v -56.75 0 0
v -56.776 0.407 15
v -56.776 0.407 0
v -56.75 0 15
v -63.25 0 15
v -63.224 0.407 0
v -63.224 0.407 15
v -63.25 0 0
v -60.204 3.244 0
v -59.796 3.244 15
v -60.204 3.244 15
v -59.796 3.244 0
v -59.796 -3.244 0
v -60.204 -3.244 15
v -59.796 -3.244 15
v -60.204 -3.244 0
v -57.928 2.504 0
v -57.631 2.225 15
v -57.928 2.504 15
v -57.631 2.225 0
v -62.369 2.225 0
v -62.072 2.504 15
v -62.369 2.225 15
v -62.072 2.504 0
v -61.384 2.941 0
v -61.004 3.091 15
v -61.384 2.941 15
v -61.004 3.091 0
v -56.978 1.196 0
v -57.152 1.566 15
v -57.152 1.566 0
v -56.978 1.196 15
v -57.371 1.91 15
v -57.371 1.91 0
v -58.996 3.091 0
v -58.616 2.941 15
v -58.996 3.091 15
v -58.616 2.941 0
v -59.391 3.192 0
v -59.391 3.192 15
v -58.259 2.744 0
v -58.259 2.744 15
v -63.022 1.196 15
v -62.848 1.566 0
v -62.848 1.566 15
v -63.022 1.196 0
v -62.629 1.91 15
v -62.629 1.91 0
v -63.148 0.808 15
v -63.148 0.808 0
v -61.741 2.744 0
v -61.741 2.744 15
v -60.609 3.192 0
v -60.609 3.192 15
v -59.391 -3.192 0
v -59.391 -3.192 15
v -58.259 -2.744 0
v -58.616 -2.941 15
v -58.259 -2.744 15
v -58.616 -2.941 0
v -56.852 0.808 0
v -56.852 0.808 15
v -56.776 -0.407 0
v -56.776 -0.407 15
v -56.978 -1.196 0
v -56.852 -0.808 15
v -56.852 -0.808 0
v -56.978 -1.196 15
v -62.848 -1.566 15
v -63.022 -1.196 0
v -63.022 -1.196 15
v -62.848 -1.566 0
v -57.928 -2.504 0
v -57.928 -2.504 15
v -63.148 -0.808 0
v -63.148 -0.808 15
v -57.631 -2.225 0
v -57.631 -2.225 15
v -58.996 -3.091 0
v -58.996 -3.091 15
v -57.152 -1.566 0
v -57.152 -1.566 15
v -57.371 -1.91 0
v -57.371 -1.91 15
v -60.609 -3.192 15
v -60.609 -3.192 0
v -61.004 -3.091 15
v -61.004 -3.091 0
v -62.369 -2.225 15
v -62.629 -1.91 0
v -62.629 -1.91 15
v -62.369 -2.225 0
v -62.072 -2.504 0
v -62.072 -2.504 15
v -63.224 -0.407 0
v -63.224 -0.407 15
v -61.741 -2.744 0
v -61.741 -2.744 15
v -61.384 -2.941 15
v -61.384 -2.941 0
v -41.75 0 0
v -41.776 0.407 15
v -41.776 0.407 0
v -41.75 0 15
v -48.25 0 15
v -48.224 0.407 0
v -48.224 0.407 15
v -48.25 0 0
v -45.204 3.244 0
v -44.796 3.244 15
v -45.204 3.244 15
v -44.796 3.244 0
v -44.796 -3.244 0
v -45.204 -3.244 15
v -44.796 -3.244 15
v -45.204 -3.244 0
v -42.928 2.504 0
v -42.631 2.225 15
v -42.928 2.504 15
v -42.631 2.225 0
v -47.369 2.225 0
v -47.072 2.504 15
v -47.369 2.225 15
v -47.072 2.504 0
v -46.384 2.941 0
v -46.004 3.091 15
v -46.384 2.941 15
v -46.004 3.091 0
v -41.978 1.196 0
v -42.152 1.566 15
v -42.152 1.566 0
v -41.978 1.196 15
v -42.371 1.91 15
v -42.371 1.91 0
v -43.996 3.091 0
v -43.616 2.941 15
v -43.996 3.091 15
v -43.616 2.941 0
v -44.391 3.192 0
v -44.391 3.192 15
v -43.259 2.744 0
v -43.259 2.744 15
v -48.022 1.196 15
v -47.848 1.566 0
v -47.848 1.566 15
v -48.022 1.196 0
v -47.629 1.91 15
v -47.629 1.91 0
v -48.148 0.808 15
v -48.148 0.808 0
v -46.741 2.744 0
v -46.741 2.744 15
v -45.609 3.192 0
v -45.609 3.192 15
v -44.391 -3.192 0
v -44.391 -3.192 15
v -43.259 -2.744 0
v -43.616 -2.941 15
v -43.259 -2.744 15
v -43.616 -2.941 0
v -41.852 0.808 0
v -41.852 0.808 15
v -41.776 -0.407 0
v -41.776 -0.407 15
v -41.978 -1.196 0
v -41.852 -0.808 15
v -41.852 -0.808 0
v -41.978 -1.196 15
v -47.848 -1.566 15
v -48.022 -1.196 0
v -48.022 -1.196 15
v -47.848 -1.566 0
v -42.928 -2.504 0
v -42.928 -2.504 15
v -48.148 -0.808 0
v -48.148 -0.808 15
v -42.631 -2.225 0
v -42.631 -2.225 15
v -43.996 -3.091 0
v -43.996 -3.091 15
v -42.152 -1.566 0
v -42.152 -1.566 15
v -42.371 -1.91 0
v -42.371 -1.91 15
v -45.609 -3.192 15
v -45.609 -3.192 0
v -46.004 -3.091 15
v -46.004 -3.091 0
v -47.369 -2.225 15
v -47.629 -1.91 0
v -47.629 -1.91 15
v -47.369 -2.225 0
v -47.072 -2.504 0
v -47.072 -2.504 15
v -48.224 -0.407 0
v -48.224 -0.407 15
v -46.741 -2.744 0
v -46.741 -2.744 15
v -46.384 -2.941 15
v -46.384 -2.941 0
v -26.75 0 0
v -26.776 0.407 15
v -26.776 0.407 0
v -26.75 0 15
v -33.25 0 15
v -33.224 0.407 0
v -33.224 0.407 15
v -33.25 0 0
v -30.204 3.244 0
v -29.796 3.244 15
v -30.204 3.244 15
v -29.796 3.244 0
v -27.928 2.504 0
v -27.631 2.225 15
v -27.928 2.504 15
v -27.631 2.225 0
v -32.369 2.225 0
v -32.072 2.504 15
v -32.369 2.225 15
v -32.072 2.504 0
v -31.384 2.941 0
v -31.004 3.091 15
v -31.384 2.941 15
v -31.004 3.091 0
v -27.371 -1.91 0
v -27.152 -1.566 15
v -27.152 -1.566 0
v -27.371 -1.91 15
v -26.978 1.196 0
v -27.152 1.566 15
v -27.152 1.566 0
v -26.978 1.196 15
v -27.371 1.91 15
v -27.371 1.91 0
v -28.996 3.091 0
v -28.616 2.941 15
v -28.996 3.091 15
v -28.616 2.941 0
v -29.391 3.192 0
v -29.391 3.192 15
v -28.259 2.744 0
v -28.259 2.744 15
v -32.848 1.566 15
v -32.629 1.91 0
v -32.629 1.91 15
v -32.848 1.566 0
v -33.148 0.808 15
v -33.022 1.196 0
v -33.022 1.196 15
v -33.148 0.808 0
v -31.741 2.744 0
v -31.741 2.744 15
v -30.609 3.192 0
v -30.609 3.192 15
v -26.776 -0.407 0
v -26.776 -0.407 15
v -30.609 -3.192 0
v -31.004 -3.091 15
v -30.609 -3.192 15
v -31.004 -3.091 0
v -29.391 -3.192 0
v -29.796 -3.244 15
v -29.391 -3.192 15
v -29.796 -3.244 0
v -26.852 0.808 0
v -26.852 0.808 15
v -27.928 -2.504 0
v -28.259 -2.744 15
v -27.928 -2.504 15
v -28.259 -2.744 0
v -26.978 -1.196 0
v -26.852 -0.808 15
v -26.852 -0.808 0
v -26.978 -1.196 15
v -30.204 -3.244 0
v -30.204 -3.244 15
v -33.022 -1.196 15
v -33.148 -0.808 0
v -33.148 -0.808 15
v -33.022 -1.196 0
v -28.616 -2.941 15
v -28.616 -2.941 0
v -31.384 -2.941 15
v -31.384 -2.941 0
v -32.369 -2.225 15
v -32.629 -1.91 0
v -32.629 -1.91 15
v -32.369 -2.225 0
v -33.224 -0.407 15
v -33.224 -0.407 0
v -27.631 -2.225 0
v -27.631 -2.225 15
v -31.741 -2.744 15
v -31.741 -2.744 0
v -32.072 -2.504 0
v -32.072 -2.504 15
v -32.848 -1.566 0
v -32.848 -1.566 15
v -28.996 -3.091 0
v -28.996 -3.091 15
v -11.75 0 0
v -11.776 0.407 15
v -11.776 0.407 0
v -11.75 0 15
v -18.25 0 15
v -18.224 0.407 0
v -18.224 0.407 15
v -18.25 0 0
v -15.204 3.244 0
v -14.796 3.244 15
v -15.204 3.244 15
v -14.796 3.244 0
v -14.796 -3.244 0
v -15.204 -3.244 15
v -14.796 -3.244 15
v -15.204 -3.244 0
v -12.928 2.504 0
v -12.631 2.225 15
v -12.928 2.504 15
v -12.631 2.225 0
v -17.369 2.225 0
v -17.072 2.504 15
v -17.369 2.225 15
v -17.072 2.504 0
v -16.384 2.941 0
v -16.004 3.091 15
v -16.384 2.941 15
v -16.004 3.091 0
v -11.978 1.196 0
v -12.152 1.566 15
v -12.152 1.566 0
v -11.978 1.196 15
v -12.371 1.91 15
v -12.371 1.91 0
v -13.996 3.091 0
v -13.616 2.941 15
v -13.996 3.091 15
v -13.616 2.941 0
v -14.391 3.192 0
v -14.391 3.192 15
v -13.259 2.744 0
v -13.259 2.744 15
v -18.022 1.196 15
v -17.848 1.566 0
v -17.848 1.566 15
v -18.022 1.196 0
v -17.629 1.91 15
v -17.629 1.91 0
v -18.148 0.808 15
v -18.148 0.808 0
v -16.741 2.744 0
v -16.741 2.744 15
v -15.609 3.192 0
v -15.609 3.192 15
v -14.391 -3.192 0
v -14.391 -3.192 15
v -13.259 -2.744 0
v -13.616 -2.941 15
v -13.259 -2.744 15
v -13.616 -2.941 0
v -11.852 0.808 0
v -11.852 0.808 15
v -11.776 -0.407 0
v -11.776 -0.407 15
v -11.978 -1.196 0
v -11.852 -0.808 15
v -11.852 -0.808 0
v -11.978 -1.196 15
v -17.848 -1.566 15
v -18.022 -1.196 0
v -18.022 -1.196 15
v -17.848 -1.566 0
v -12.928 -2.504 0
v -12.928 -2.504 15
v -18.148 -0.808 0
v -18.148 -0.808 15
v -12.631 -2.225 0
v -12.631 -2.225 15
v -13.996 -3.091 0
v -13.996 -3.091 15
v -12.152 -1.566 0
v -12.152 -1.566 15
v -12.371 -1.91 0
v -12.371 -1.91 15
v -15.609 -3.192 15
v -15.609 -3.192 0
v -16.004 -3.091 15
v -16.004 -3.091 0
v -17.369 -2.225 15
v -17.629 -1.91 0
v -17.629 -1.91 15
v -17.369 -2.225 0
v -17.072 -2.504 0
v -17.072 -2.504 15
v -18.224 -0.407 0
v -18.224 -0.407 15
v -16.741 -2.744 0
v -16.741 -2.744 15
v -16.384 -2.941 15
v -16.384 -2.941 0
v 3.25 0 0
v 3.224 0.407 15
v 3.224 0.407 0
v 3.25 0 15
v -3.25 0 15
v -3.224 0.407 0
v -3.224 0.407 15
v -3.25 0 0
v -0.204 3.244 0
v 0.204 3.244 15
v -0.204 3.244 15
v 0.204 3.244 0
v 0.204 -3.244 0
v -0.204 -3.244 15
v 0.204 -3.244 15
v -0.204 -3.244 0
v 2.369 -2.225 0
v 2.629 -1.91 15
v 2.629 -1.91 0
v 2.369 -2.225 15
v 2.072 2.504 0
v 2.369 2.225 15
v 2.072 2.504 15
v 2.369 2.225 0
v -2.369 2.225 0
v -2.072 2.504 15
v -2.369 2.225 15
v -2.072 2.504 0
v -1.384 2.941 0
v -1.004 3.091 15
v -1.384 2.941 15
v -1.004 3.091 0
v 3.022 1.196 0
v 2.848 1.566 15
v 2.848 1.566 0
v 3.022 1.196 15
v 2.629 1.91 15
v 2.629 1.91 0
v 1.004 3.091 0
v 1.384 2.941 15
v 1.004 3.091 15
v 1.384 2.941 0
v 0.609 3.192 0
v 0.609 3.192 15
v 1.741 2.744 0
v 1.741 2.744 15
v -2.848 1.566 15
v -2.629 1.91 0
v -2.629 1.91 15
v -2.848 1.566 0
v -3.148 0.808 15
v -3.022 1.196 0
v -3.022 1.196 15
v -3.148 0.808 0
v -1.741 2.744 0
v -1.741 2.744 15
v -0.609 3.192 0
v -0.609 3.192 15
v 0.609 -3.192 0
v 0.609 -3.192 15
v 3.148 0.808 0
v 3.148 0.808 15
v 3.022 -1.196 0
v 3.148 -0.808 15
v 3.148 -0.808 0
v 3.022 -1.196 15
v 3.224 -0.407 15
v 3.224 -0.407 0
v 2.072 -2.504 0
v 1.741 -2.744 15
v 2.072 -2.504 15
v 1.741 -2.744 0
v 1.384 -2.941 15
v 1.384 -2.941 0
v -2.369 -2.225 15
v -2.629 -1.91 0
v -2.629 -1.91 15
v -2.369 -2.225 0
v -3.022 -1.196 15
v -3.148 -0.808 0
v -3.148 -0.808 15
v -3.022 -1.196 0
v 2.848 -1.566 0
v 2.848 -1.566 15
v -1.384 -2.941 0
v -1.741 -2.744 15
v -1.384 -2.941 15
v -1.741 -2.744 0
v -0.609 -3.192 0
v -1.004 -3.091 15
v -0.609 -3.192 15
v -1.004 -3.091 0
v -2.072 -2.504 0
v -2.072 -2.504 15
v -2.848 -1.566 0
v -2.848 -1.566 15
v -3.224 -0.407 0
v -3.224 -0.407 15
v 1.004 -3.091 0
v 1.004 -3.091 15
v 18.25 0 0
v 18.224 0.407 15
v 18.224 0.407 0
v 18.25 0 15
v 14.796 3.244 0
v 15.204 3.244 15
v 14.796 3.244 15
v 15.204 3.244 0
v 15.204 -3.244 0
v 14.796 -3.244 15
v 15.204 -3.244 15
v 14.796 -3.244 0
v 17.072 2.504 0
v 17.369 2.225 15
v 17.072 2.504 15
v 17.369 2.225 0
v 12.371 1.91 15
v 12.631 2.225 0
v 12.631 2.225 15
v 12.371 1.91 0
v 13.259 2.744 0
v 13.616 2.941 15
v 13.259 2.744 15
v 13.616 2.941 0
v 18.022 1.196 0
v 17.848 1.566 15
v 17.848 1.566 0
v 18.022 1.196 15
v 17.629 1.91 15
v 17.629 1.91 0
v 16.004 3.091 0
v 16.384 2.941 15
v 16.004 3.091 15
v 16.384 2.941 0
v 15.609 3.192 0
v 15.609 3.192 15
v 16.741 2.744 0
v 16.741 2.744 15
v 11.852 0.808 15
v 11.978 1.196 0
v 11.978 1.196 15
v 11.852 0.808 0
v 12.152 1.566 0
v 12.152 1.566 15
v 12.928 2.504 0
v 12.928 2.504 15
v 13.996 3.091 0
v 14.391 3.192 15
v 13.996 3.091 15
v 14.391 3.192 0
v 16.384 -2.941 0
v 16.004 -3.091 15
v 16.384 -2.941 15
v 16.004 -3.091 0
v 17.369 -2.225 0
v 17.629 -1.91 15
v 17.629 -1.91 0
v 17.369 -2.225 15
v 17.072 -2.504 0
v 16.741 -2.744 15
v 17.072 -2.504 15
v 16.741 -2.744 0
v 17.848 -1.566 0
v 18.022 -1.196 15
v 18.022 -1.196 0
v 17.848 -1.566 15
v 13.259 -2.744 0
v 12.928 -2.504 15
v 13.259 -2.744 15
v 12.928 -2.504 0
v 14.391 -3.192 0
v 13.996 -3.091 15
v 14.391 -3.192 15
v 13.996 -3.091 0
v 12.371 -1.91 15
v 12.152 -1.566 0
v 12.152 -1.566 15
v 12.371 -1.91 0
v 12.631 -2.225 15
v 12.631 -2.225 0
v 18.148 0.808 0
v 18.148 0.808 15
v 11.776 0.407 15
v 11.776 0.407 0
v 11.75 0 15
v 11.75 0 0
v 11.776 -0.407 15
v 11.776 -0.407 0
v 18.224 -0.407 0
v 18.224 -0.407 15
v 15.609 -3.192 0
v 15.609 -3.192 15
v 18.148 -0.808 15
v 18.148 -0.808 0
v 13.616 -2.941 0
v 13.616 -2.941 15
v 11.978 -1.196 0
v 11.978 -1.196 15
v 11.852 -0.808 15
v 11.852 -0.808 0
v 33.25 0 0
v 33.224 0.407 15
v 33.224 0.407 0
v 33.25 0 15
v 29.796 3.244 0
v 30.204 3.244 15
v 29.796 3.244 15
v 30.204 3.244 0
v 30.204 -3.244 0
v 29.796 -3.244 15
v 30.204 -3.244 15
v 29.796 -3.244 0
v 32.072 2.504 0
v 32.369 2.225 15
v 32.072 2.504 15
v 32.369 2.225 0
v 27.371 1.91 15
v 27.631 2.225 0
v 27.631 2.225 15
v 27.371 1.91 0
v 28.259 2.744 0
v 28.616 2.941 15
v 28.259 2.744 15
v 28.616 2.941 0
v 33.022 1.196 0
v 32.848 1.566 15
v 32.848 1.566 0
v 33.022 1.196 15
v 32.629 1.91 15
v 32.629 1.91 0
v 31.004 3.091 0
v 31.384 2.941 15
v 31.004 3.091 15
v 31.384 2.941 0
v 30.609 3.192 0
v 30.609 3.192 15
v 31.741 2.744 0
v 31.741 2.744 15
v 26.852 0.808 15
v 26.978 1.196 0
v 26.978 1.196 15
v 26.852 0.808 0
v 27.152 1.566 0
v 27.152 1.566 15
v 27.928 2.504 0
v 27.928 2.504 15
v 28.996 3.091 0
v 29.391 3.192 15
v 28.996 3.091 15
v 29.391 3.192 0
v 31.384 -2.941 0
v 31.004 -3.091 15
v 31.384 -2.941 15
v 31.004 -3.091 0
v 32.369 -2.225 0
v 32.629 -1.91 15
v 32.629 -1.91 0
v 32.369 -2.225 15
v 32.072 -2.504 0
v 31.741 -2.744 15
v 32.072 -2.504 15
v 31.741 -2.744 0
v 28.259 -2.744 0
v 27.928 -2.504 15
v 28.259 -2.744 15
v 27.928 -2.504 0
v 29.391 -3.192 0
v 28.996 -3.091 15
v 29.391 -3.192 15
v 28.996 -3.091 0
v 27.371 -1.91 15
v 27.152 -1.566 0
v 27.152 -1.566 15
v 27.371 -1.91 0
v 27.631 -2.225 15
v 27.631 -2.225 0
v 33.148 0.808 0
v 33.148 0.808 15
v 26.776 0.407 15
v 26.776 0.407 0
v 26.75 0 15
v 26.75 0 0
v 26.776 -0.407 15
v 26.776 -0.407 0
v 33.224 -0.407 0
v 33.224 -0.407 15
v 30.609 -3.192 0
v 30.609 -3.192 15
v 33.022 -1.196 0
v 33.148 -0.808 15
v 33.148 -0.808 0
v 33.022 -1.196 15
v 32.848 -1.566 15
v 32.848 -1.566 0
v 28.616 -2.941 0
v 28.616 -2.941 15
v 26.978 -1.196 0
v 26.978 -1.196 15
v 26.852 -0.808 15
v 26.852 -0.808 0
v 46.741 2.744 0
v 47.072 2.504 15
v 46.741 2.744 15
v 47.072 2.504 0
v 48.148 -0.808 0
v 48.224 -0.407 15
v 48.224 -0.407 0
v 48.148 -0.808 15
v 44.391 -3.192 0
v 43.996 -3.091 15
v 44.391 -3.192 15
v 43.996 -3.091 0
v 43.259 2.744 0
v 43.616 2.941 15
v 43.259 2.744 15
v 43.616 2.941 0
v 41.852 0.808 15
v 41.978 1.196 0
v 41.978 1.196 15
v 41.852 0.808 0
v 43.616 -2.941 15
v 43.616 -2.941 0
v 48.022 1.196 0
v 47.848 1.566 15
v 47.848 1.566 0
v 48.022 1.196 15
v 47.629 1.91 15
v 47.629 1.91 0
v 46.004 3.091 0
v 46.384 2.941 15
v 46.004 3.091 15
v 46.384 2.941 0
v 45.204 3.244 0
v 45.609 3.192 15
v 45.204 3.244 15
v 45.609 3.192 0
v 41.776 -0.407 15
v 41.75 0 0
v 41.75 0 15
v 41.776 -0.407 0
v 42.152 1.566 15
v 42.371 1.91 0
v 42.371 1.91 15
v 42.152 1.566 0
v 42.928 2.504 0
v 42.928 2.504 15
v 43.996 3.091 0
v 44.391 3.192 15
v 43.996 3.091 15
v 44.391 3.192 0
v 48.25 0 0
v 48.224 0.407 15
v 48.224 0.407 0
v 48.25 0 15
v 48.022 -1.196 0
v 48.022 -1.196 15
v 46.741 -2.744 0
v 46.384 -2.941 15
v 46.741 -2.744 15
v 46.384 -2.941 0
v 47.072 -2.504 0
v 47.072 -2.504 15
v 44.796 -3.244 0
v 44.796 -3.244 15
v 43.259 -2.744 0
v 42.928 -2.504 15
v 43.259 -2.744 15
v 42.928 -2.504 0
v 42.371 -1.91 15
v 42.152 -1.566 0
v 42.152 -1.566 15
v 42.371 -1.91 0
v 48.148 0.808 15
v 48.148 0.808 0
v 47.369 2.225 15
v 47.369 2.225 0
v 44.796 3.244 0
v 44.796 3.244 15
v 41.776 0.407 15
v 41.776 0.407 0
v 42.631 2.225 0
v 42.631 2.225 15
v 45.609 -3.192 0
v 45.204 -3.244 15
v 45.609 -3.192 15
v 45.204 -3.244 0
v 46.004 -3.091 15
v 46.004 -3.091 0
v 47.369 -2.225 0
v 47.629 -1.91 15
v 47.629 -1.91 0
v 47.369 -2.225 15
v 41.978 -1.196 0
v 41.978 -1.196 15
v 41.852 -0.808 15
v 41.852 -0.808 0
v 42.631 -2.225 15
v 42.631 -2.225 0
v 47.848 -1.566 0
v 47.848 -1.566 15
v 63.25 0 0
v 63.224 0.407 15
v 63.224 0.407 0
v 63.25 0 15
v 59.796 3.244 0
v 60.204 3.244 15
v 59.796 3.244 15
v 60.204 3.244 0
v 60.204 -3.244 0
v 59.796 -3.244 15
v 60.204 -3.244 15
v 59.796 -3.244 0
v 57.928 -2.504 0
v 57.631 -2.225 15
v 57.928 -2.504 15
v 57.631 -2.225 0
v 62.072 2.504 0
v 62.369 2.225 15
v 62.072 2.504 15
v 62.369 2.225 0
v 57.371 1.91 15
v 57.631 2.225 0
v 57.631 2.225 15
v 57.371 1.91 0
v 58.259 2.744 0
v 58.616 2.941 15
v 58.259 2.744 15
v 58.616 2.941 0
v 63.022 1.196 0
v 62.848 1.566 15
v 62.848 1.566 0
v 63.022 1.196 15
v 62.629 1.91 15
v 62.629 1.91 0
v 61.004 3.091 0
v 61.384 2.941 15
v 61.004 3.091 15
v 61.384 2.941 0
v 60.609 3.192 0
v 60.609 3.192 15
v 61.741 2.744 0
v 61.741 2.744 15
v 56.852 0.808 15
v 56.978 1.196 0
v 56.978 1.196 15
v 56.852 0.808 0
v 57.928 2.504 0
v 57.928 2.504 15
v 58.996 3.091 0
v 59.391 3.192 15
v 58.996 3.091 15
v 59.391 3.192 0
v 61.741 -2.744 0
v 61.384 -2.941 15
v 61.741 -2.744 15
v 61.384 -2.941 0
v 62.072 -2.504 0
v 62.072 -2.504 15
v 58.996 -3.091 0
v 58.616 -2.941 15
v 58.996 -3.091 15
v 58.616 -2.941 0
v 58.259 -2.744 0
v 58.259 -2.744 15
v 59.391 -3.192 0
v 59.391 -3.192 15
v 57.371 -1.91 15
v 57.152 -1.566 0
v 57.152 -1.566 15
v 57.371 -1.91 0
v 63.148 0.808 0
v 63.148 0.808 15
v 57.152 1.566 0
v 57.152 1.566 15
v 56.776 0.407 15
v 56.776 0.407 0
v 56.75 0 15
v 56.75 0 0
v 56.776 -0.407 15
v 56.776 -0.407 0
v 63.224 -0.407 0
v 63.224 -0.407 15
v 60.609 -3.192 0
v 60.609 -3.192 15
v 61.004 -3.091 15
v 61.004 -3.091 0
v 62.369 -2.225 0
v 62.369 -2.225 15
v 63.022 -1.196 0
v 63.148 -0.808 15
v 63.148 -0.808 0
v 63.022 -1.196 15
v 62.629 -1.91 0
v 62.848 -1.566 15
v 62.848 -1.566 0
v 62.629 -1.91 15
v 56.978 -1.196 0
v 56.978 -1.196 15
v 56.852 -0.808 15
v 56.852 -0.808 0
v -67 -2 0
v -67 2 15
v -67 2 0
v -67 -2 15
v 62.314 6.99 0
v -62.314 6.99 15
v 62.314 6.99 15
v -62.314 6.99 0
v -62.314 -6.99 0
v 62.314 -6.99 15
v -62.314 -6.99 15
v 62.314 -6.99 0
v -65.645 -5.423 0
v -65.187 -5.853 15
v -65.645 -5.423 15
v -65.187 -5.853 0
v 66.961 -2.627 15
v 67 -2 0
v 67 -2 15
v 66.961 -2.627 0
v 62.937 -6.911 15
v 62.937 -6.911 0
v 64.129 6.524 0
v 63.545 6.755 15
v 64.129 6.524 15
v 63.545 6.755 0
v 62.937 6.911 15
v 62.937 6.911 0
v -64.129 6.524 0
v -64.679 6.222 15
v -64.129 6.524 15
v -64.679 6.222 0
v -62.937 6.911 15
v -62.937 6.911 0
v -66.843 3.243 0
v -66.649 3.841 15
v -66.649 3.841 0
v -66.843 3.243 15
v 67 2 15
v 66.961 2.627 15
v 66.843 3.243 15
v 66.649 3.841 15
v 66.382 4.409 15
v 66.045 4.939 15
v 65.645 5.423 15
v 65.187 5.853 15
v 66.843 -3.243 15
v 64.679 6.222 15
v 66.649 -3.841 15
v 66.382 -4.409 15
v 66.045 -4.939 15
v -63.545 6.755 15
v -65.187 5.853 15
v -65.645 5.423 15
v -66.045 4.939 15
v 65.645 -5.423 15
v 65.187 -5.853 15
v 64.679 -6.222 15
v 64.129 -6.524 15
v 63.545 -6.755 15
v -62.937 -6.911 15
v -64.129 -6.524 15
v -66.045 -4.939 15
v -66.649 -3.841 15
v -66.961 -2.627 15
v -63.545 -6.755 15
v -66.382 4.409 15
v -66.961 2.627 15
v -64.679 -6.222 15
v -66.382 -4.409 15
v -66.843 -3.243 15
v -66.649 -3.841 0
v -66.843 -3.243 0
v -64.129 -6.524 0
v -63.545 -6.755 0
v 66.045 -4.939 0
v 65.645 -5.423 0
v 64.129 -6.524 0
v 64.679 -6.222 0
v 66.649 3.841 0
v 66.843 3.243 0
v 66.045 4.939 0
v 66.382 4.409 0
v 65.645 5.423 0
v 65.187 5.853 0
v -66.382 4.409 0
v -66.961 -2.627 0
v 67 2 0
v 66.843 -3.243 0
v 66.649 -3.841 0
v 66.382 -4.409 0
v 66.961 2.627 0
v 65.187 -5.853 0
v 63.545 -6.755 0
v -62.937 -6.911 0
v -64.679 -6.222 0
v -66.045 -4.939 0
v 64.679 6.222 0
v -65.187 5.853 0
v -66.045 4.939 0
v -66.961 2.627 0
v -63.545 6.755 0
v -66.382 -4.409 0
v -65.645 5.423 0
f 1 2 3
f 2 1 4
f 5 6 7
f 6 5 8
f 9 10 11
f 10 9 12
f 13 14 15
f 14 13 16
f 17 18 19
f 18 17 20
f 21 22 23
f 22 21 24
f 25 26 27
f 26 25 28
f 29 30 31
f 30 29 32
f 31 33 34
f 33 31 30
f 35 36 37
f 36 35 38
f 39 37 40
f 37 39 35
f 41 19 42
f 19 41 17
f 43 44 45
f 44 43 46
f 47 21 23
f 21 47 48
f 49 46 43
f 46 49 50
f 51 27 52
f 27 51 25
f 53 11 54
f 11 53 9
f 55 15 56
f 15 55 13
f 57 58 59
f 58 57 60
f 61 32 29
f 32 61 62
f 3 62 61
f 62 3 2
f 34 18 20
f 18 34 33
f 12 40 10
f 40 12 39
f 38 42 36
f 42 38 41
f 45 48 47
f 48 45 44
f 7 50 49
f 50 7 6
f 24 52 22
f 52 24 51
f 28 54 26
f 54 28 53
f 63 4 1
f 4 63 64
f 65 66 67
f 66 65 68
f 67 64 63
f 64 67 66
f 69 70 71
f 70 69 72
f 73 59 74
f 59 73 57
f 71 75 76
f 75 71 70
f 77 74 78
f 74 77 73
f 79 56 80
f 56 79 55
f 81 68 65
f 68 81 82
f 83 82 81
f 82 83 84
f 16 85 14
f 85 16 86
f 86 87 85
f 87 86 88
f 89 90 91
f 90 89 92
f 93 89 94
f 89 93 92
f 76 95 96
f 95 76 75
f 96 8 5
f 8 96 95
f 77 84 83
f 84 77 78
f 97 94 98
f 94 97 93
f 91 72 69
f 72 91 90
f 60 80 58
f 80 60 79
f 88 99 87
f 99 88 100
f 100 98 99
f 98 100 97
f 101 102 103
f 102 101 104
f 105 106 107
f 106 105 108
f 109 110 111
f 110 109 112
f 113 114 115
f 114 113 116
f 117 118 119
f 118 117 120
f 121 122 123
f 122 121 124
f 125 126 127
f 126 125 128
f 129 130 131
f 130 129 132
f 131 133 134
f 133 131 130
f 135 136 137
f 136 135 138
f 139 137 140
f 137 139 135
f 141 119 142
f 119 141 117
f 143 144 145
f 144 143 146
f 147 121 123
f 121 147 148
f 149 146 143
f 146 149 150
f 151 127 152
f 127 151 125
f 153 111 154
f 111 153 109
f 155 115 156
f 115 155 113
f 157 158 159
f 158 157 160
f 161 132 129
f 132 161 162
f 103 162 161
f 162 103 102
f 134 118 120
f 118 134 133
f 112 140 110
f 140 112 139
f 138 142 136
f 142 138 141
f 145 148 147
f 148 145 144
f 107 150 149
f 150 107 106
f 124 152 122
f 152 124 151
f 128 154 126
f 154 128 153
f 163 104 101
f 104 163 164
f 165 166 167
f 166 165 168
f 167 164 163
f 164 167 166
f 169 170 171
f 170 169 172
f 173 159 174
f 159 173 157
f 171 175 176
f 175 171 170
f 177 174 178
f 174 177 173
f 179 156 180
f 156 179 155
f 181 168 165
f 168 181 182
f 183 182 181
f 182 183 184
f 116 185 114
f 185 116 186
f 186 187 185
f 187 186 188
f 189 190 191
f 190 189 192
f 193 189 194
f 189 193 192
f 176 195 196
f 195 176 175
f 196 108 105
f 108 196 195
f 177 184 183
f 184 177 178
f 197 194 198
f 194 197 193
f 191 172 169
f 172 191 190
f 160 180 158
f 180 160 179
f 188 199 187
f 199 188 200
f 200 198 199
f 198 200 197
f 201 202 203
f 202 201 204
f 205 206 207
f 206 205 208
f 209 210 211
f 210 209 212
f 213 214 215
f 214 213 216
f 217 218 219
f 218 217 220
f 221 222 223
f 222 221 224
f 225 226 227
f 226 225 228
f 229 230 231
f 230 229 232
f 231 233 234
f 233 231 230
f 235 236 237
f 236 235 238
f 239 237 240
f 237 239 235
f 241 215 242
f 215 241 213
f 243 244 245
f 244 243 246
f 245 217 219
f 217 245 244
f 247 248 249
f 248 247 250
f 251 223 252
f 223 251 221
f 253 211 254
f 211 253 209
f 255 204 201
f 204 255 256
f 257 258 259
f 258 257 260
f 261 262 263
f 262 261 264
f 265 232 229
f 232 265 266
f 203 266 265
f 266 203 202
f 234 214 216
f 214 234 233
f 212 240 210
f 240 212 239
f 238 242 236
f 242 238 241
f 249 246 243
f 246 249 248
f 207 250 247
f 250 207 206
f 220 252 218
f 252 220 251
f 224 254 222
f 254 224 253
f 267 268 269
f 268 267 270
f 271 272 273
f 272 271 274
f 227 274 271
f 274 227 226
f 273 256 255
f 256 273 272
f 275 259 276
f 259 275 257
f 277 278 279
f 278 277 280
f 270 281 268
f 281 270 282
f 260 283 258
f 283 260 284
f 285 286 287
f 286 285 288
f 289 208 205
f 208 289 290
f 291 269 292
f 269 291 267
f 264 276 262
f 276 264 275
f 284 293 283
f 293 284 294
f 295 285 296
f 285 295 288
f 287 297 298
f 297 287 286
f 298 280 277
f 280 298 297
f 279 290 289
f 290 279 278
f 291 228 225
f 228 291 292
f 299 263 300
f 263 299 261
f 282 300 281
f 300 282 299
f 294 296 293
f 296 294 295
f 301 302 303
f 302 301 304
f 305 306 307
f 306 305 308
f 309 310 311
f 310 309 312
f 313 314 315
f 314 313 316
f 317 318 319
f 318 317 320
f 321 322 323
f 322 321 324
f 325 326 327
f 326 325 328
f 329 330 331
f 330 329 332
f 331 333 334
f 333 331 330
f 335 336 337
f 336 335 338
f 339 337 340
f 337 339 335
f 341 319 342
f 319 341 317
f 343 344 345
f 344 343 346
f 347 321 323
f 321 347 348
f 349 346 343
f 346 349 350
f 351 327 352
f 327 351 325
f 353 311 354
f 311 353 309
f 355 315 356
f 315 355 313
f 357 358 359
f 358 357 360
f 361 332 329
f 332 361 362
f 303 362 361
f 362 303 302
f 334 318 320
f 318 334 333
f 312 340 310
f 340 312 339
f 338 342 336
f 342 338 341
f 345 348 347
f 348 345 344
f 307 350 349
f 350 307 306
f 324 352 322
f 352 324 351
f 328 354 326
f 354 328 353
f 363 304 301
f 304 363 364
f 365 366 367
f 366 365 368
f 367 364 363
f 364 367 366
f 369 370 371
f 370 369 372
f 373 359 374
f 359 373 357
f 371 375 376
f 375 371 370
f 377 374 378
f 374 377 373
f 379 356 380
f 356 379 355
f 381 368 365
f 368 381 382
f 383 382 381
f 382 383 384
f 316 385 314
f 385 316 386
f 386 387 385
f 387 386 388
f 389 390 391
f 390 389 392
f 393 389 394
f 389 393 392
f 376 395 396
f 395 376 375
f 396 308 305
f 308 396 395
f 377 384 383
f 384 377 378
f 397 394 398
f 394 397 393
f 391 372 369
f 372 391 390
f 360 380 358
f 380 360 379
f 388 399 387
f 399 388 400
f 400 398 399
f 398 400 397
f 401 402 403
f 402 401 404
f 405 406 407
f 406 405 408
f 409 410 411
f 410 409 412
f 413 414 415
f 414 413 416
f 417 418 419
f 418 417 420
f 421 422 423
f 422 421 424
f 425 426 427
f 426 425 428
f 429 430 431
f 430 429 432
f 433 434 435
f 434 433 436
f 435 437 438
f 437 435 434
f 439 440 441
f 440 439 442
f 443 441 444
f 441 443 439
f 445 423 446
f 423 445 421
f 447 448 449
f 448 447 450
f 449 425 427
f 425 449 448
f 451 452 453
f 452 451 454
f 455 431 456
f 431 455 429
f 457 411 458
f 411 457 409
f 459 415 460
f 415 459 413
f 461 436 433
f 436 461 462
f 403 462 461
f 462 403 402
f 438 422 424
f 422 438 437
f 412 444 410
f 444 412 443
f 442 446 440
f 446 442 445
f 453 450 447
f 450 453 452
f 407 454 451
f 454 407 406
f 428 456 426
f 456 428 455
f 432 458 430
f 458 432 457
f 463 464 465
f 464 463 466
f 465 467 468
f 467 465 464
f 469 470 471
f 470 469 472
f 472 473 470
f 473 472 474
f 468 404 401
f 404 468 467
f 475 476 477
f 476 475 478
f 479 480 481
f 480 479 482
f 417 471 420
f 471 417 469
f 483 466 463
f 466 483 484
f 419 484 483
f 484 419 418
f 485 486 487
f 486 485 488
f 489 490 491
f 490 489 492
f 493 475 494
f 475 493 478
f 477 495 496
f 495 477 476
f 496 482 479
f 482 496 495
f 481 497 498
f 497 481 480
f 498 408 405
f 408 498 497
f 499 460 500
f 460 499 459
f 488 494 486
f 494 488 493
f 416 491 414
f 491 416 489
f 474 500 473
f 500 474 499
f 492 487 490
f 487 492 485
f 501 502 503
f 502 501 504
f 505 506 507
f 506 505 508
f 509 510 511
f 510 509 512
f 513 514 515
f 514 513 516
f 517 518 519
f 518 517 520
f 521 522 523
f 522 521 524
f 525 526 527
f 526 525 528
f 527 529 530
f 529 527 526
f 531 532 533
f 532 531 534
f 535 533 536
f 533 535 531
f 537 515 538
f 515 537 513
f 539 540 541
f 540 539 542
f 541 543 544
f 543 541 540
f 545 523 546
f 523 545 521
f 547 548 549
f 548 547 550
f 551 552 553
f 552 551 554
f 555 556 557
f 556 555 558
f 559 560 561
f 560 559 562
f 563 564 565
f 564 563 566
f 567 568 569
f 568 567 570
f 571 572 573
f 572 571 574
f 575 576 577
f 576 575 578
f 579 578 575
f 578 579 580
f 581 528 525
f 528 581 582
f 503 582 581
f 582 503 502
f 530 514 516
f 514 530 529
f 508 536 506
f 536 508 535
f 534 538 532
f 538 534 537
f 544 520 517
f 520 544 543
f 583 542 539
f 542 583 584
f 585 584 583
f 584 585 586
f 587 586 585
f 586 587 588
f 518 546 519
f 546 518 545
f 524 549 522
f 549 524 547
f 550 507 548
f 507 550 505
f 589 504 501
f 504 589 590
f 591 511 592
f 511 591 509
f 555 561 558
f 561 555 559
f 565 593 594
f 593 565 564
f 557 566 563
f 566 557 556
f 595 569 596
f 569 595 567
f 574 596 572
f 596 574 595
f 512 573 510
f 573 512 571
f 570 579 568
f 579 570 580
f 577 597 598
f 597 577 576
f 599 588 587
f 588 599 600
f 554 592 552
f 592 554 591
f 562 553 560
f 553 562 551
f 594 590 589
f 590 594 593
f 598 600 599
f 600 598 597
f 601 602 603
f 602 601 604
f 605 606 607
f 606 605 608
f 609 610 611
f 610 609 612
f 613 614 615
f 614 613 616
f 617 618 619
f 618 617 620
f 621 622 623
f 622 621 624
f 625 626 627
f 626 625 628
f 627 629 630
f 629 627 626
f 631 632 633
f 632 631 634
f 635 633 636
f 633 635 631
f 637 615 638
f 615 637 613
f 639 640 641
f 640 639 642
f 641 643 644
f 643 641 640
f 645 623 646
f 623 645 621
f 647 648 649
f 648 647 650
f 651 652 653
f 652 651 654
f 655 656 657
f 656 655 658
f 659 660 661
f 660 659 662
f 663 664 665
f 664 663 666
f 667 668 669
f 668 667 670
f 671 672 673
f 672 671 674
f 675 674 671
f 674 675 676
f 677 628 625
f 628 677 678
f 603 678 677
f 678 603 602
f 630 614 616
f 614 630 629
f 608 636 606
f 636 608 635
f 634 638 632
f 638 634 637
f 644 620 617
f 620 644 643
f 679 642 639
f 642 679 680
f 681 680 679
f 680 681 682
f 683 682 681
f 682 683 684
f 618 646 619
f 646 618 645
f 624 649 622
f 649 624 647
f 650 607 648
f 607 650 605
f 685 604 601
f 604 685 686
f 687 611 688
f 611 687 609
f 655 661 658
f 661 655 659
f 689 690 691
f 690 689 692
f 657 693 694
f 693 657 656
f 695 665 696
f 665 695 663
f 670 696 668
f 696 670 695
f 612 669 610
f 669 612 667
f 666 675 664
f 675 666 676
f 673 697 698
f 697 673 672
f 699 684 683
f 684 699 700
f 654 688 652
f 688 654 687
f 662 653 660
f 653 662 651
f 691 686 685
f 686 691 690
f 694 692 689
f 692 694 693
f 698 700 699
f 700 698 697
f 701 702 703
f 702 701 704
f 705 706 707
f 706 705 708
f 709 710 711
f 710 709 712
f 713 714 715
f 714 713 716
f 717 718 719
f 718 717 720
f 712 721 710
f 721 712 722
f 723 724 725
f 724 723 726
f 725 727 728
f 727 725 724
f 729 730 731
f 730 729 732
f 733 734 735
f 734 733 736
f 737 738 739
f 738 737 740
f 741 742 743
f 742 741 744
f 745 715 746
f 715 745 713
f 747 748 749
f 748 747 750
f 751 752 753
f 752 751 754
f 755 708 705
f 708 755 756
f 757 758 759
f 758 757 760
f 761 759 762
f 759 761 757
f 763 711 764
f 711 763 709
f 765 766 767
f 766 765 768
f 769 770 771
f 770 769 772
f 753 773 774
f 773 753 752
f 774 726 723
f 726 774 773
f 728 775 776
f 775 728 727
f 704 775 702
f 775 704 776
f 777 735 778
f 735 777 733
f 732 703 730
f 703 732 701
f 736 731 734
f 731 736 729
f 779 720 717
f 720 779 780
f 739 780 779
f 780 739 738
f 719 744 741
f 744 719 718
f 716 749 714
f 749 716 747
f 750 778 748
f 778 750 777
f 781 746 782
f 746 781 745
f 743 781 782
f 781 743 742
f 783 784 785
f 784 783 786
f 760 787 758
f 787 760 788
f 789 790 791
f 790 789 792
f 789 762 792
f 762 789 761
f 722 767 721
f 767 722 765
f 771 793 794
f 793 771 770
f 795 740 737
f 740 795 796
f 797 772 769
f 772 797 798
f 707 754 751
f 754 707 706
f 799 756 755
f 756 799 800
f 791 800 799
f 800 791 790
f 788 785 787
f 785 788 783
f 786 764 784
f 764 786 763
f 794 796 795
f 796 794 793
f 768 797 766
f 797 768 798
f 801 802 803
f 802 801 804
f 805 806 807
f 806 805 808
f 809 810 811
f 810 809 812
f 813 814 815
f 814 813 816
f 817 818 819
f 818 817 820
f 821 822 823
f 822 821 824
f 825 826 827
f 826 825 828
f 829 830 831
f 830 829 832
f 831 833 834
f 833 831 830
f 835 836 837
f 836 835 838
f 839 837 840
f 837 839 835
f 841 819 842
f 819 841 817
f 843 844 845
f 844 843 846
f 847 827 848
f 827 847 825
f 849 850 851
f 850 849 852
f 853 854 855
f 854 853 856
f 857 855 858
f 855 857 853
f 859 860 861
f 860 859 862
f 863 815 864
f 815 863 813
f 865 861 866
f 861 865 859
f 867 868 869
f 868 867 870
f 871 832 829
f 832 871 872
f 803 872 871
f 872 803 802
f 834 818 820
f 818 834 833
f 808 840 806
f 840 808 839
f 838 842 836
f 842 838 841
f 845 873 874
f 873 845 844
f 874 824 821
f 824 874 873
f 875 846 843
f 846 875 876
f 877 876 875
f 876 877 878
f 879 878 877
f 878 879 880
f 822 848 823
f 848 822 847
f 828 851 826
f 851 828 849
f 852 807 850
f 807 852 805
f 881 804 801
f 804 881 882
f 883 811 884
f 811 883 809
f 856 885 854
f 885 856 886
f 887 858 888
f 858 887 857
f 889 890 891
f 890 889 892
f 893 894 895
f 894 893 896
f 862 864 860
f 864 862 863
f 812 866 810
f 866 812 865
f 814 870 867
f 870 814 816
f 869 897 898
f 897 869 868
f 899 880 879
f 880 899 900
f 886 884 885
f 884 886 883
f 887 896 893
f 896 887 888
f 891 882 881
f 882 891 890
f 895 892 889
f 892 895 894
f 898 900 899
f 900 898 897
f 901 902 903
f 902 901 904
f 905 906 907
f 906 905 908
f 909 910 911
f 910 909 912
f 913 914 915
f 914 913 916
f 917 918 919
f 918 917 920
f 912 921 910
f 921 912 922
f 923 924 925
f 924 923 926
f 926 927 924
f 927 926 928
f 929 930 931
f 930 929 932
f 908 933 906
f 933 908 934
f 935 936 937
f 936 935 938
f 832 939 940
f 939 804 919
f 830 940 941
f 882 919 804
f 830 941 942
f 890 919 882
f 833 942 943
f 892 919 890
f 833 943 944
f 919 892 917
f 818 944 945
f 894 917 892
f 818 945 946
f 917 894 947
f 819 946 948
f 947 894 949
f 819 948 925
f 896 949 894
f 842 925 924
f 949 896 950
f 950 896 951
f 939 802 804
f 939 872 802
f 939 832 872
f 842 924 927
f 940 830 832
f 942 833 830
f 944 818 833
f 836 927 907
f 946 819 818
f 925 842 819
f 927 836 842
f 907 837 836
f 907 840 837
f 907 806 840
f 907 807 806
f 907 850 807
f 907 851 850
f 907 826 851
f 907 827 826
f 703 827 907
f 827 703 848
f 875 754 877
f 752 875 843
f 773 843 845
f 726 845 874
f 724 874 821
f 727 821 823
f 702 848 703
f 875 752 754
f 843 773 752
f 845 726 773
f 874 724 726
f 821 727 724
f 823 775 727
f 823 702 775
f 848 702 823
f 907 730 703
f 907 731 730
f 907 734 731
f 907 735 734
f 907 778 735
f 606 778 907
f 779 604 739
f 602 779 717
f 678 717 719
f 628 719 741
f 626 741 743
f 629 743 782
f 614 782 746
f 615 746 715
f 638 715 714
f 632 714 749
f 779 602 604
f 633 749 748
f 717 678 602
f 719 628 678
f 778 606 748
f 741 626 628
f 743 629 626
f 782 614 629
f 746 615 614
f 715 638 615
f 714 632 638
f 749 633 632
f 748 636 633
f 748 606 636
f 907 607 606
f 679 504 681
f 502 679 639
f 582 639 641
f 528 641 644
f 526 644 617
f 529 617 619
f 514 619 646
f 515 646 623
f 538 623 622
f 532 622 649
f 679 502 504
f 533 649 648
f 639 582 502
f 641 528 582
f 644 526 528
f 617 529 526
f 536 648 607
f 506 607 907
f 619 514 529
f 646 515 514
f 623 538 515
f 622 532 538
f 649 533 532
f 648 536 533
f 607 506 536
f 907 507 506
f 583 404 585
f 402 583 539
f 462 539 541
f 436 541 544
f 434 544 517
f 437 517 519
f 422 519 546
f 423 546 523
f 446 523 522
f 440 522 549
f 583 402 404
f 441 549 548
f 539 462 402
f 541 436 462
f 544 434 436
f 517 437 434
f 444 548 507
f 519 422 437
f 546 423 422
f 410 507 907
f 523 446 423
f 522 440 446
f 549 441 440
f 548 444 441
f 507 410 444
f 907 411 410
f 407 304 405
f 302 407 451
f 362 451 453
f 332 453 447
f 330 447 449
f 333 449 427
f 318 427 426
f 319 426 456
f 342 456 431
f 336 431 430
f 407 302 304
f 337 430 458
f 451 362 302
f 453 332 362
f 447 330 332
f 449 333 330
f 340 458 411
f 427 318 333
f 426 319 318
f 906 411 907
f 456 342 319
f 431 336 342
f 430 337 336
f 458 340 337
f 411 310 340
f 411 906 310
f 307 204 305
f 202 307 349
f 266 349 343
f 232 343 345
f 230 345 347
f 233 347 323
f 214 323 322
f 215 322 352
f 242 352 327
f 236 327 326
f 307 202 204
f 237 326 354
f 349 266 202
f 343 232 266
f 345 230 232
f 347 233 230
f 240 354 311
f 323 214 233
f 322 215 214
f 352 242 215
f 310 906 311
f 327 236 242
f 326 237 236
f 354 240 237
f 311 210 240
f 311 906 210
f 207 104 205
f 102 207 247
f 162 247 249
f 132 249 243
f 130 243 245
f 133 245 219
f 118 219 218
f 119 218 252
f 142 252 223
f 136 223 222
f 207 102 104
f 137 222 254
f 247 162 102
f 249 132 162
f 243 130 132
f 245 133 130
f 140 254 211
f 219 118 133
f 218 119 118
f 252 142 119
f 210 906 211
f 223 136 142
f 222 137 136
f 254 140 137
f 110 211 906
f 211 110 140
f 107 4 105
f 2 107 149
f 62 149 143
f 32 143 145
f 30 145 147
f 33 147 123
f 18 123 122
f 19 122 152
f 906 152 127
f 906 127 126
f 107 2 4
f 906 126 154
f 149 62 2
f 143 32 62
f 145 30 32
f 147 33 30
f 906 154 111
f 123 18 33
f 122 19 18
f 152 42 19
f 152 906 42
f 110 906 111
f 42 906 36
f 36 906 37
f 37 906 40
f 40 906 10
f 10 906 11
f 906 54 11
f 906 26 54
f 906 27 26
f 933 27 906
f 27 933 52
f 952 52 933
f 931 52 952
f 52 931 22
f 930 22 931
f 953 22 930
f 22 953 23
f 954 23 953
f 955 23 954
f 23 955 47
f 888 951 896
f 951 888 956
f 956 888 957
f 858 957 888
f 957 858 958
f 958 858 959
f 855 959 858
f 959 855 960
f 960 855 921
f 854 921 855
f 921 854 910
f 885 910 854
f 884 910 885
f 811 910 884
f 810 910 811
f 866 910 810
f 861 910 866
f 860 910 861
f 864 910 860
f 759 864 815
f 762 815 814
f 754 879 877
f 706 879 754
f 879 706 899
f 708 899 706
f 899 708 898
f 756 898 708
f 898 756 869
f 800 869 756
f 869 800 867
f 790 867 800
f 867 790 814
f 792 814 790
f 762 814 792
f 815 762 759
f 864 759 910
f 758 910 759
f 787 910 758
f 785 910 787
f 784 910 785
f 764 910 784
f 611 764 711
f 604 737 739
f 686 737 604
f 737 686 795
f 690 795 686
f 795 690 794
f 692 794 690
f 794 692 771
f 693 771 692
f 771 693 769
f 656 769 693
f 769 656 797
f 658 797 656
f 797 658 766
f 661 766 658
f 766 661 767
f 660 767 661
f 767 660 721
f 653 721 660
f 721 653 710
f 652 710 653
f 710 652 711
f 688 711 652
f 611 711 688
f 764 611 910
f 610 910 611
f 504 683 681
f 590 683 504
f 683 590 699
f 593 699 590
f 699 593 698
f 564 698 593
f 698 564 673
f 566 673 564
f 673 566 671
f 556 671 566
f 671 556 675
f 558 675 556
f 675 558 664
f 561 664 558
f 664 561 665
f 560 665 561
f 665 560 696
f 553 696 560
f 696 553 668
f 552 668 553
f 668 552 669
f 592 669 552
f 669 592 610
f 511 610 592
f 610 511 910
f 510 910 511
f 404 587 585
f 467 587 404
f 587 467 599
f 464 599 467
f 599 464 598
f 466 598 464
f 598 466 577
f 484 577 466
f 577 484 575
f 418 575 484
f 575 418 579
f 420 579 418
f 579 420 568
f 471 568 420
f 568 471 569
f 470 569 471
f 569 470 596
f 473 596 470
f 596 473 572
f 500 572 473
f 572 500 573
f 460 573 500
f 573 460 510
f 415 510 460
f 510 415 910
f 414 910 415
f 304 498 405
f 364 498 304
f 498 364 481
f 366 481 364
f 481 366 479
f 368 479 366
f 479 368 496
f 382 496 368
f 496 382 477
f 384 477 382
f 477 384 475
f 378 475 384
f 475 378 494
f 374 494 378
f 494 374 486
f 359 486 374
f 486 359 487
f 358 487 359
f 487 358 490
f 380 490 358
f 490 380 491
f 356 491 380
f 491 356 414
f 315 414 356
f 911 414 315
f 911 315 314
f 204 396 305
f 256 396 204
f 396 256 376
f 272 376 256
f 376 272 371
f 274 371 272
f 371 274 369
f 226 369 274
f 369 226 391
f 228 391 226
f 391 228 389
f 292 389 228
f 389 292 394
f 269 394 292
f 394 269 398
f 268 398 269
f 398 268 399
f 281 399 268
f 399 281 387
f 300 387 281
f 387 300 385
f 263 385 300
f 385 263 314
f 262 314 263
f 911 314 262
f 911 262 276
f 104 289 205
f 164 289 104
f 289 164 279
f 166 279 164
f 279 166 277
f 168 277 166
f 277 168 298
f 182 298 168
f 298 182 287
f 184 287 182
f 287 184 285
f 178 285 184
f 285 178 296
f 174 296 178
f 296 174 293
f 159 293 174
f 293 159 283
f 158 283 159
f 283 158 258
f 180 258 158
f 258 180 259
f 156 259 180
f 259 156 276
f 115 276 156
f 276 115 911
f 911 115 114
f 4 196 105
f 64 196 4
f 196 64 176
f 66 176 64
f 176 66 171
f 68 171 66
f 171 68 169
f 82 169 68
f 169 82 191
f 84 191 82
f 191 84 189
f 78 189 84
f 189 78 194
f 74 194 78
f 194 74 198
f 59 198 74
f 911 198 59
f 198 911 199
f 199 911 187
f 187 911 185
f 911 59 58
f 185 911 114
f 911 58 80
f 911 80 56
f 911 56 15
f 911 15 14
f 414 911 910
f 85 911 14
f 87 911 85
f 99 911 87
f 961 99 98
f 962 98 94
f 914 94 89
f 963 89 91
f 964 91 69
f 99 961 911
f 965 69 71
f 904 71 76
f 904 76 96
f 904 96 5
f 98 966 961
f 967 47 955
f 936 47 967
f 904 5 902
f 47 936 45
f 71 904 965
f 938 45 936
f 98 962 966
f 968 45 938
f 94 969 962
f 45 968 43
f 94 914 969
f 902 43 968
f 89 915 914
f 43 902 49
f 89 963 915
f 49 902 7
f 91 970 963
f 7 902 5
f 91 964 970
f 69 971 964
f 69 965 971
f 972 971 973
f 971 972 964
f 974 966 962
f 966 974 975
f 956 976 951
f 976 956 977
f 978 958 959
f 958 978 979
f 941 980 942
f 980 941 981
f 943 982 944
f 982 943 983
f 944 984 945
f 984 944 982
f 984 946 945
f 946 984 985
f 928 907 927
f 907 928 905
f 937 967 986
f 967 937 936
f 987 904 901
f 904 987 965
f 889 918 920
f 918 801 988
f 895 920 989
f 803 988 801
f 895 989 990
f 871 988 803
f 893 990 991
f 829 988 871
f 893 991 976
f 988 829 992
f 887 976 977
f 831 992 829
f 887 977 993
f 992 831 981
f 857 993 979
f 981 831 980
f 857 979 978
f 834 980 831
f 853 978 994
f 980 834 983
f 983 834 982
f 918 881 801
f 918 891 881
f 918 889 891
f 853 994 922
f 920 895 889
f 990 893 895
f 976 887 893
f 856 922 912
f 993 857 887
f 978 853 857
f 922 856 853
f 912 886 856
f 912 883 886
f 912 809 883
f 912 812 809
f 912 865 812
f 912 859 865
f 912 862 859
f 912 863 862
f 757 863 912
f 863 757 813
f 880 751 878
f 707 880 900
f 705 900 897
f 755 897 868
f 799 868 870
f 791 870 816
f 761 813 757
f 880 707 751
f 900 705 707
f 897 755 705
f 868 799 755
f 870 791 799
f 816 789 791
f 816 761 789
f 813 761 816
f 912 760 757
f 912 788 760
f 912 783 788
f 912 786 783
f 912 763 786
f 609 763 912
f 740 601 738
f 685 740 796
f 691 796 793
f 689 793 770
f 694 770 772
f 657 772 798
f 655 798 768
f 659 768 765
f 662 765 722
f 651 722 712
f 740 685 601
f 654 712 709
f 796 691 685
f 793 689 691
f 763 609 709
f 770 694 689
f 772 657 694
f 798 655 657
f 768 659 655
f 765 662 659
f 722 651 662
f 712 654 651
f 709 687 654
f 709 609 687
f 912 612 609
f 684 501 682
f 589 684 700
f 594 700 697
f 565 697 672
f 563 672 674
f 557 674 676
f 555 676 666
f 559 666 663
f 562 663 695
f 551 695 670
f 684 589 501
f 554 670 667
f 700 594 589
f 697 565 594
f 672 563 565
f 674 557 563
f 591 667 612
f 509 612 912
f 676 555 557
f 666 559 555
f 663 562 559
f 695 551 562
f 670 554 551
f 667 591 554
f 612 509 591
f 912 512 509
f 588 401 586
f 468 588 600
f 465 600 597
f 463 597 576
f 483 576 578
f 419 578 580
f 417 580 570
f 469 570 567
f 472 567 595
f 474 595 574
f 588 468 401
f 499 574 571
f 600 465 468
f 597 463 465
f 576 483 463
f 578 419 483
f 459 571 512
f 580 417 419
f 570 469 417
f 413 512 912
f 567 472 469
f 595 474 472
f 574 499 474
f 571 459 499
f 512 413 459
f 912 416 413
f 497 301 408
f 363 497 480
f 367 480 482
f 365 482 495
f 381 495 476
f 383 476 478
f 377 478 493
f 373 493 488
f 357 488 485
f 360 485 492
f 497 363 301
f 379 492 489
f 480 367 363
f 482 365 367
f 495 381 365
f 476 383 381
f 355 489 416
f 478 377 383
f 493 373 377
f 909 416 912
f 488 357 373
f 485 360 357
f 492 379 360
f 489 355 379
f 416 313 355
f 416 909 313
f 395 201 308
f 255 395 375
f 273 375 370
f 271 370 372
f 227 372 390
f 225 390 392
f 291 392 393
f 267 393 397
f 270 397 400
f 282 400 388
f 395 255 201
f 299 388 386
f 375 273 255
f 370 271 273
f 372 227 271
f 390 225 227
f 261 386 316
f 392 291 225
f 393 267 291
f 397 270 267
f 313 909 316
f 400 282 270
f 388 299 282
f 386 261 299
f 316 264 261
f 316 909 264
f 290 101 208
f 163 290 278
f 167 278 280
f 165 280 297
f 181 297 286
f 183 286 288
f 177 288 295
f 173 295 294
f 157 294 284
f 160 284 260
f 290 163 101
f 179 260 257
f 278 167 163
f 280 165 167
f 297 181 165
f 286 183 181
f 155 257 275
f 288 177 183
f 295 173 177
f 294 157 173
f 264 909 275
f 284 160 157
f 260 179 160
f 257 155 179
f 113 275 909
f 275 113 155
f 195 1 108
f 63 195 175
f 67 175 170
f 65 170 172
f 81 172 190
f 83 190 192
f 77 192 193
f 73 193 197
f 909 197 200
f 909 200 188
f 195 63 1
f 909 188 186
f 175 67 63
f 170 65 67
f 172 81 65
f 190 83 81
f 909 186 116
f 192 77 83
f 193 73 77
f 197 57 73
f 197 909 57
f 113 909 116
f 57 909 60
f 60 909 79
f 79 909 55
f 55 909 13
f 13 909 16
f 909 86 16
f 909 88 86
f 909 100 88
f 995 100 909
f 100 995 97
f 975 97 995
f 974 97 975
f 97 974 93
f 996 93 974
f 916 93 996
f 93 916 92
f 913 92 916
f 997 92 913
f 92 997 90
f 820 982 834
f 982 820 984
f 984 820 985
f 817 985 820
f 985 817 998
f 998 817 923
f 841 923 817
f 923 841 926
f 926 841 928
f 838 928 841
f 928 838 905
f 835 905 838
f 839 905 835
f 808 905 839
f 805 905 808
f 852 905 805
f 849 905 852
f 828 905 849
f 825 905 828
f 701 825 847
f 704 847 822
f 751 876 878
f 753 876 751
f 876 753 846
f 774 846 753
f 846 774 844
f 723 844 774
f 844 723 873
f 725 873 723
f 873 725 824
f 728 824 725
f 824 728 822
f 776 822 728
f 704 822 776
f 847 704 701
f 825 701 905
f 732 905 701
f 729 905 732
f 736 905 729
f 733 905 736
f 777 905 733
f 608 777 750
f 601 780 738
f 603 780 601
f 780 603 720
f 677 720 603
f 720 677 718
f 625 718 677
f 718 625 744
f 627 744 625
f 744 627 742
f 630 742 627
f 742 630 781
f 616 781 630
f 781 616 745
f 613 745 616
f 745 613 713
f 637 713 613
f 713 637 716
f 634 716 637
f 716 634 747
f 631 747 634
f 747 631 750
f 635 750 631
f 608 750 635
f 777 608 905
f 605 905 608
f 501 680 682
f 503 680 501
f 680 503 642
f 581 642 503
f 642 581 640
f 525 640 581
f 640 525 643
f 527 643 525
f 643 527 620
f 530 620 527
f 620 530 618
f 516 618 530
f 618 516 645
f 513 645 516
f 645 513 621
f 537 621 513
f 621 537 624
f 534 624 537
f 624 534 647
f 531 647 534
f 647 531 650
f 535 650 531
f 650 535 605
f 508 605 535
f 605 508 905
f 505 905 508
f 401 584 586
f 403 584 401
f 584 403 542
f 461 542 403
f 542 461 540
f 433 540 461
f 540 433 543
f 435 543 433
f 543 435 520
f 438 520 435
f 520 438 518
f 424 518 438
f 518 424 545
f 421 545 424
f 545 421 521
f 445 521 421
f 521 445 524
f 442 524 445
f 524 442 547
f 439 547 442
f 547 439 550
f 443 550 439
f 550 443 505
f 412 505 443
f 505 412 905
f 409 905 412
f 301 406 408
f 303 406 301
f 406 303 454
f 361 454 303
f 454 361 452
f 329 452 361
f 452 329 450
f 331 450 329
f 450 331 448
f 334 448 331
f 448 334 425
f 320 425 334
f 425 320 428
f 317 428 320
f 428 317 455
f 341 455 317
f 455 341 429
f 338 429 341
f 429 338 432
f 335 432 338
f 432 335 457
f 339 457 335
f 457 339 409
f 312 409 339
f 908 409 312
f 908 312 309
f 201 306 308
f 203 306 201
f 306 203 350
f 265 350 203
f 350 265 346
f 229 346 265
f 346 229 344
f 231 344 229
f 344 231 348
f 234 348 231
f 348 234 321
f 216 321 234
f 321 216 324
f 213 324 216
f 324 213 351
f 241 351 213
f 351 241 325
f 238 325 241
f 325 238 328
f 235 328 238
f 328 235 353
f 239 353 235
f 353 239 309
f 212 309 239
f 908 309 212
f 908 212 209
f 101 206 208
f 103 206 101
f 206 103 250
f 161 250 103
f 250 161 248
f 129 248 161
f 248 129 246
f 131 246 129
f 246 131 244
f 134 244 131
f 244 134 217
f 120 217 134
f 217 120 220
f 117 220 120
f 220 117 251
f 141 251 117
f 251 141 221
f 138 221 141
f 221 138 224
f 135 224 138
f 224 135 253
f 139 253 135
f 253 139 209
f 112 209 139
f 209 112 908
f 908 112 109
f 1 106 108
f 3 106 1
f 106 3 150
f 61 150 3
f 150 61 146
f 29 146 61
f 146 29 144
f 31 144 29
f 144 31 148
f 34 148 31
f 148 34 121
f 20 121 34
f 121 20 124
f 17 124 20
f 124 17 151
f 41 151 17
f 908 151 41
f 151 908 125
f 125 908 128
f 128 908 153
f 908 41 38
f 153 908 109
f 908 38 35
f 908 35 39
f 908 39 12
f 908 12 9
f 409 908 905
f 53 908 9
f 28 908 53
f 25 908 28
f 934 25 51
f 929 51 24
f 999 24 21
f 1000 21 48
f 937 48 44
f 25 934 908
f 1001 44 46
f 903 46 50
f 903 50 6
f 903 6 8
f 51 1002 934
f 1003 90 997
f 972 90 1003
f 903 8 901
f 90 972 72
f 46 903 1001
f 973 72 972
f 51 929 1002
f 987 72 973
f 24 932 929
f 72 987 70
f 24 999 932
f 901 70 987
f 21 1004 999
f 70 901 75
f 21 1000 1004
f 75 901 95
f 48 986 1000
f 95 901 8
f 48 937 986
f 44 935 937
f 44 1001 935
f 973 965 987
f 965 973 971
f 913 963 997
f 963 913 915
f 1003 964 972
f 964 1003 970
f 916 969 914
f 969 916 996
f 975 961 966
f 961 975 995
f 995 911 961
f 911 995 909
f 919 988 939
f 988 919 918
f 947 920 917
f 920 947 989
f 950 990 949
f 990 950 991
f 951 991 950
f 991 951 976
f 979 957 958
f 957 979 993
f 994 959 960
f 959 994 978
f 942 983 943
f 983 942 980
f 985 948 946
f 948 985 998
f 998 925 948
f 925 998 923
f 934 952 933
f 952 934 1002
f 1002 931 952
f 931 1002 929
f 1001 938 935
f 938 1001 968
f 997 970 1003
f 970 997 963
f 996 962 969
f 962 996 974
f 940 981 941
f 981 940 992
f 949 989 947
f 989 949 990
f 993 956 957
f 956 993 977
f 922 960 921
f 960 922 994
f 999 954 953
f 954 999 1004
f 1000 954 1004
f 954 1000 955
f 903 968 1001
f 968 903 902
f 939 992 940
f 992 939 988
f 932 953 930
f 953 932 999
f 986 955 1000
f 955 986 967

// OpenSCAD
$fn = 50;


difference() {
	union() {
		hull() {
			translate(v = [-62.0000000000, 2.0000000000, 0]) {
				cylinder(h = 15, r = 5);
			}
			translate(v = [62.0000000000, 2.0000000000, 0]) {
				cylinder(h = 15, r = 5);
			}
			translate(v = [-62.0000000000, -2.0000000000, 0]) {
				cylinder(h = 15, r = 5);
			}
			translate(v = [62.0000000000, -2.0000000000, 0]) {
				cylinder(h = 15, r = 5);
			}
		}
	}
	union() {
		translate(v = [-60.0000000000, 0.0000000000, 0]) {
			translate(v = [0, 0, -100]) {
				cylinder(h = 200, r = 3.2500000000);
			}
		}
		translate(v = [-45.0000000000, 0.0000000000, 0]) {
			translate(v = [0, 0, -100]) {
				cylinder(h = 200, r = 3.2500000000);
			}
		}
		translate(v = [-30.0000000000, 0.0000000000, 0]) {
			translate(v = [0, 0, -100]) {
				cylinder(h = 200, r = 3.2500000000);
			}
		}
		translate(v = [-15.0000000000, 0.0000000000, 0]) {
			translate(v = [0, 0, -100]) {
				cylinder(h = 200, r = 3.2500000000);
			}
		}
		translate(v = [0, 0, -100]) {
			cylinder(h = 200, r = 3.2500000000);
		}
		translate(v = [15.0000000000, 0.0000000000, 0]) {
			translate(v = [0, 0, -100]) {
				cylinder(h = 200, r = 3.2500000000);
			}
		}
		translate(v = [30.0000000000, 0.0000000000, 0]) {
			translate(v = [0, 0, -100]) {
				cylinder(h = 200, r = 3.2500000000);
			}
		}
		translate(v = [45.0000000000, 0.0000000000, 0]) {
			translate(v = [0, 0, -100]) {
				cylinder(h = 200, r = 3.2500000000);
			}
		}
		translate(v = [60.0000000000, 0.0000000000, 0]) {
			translate(v = [0, 0, -100]) {
				cylinder(h = 200, r = 3.2500000000);
			}
		}
	}
}
